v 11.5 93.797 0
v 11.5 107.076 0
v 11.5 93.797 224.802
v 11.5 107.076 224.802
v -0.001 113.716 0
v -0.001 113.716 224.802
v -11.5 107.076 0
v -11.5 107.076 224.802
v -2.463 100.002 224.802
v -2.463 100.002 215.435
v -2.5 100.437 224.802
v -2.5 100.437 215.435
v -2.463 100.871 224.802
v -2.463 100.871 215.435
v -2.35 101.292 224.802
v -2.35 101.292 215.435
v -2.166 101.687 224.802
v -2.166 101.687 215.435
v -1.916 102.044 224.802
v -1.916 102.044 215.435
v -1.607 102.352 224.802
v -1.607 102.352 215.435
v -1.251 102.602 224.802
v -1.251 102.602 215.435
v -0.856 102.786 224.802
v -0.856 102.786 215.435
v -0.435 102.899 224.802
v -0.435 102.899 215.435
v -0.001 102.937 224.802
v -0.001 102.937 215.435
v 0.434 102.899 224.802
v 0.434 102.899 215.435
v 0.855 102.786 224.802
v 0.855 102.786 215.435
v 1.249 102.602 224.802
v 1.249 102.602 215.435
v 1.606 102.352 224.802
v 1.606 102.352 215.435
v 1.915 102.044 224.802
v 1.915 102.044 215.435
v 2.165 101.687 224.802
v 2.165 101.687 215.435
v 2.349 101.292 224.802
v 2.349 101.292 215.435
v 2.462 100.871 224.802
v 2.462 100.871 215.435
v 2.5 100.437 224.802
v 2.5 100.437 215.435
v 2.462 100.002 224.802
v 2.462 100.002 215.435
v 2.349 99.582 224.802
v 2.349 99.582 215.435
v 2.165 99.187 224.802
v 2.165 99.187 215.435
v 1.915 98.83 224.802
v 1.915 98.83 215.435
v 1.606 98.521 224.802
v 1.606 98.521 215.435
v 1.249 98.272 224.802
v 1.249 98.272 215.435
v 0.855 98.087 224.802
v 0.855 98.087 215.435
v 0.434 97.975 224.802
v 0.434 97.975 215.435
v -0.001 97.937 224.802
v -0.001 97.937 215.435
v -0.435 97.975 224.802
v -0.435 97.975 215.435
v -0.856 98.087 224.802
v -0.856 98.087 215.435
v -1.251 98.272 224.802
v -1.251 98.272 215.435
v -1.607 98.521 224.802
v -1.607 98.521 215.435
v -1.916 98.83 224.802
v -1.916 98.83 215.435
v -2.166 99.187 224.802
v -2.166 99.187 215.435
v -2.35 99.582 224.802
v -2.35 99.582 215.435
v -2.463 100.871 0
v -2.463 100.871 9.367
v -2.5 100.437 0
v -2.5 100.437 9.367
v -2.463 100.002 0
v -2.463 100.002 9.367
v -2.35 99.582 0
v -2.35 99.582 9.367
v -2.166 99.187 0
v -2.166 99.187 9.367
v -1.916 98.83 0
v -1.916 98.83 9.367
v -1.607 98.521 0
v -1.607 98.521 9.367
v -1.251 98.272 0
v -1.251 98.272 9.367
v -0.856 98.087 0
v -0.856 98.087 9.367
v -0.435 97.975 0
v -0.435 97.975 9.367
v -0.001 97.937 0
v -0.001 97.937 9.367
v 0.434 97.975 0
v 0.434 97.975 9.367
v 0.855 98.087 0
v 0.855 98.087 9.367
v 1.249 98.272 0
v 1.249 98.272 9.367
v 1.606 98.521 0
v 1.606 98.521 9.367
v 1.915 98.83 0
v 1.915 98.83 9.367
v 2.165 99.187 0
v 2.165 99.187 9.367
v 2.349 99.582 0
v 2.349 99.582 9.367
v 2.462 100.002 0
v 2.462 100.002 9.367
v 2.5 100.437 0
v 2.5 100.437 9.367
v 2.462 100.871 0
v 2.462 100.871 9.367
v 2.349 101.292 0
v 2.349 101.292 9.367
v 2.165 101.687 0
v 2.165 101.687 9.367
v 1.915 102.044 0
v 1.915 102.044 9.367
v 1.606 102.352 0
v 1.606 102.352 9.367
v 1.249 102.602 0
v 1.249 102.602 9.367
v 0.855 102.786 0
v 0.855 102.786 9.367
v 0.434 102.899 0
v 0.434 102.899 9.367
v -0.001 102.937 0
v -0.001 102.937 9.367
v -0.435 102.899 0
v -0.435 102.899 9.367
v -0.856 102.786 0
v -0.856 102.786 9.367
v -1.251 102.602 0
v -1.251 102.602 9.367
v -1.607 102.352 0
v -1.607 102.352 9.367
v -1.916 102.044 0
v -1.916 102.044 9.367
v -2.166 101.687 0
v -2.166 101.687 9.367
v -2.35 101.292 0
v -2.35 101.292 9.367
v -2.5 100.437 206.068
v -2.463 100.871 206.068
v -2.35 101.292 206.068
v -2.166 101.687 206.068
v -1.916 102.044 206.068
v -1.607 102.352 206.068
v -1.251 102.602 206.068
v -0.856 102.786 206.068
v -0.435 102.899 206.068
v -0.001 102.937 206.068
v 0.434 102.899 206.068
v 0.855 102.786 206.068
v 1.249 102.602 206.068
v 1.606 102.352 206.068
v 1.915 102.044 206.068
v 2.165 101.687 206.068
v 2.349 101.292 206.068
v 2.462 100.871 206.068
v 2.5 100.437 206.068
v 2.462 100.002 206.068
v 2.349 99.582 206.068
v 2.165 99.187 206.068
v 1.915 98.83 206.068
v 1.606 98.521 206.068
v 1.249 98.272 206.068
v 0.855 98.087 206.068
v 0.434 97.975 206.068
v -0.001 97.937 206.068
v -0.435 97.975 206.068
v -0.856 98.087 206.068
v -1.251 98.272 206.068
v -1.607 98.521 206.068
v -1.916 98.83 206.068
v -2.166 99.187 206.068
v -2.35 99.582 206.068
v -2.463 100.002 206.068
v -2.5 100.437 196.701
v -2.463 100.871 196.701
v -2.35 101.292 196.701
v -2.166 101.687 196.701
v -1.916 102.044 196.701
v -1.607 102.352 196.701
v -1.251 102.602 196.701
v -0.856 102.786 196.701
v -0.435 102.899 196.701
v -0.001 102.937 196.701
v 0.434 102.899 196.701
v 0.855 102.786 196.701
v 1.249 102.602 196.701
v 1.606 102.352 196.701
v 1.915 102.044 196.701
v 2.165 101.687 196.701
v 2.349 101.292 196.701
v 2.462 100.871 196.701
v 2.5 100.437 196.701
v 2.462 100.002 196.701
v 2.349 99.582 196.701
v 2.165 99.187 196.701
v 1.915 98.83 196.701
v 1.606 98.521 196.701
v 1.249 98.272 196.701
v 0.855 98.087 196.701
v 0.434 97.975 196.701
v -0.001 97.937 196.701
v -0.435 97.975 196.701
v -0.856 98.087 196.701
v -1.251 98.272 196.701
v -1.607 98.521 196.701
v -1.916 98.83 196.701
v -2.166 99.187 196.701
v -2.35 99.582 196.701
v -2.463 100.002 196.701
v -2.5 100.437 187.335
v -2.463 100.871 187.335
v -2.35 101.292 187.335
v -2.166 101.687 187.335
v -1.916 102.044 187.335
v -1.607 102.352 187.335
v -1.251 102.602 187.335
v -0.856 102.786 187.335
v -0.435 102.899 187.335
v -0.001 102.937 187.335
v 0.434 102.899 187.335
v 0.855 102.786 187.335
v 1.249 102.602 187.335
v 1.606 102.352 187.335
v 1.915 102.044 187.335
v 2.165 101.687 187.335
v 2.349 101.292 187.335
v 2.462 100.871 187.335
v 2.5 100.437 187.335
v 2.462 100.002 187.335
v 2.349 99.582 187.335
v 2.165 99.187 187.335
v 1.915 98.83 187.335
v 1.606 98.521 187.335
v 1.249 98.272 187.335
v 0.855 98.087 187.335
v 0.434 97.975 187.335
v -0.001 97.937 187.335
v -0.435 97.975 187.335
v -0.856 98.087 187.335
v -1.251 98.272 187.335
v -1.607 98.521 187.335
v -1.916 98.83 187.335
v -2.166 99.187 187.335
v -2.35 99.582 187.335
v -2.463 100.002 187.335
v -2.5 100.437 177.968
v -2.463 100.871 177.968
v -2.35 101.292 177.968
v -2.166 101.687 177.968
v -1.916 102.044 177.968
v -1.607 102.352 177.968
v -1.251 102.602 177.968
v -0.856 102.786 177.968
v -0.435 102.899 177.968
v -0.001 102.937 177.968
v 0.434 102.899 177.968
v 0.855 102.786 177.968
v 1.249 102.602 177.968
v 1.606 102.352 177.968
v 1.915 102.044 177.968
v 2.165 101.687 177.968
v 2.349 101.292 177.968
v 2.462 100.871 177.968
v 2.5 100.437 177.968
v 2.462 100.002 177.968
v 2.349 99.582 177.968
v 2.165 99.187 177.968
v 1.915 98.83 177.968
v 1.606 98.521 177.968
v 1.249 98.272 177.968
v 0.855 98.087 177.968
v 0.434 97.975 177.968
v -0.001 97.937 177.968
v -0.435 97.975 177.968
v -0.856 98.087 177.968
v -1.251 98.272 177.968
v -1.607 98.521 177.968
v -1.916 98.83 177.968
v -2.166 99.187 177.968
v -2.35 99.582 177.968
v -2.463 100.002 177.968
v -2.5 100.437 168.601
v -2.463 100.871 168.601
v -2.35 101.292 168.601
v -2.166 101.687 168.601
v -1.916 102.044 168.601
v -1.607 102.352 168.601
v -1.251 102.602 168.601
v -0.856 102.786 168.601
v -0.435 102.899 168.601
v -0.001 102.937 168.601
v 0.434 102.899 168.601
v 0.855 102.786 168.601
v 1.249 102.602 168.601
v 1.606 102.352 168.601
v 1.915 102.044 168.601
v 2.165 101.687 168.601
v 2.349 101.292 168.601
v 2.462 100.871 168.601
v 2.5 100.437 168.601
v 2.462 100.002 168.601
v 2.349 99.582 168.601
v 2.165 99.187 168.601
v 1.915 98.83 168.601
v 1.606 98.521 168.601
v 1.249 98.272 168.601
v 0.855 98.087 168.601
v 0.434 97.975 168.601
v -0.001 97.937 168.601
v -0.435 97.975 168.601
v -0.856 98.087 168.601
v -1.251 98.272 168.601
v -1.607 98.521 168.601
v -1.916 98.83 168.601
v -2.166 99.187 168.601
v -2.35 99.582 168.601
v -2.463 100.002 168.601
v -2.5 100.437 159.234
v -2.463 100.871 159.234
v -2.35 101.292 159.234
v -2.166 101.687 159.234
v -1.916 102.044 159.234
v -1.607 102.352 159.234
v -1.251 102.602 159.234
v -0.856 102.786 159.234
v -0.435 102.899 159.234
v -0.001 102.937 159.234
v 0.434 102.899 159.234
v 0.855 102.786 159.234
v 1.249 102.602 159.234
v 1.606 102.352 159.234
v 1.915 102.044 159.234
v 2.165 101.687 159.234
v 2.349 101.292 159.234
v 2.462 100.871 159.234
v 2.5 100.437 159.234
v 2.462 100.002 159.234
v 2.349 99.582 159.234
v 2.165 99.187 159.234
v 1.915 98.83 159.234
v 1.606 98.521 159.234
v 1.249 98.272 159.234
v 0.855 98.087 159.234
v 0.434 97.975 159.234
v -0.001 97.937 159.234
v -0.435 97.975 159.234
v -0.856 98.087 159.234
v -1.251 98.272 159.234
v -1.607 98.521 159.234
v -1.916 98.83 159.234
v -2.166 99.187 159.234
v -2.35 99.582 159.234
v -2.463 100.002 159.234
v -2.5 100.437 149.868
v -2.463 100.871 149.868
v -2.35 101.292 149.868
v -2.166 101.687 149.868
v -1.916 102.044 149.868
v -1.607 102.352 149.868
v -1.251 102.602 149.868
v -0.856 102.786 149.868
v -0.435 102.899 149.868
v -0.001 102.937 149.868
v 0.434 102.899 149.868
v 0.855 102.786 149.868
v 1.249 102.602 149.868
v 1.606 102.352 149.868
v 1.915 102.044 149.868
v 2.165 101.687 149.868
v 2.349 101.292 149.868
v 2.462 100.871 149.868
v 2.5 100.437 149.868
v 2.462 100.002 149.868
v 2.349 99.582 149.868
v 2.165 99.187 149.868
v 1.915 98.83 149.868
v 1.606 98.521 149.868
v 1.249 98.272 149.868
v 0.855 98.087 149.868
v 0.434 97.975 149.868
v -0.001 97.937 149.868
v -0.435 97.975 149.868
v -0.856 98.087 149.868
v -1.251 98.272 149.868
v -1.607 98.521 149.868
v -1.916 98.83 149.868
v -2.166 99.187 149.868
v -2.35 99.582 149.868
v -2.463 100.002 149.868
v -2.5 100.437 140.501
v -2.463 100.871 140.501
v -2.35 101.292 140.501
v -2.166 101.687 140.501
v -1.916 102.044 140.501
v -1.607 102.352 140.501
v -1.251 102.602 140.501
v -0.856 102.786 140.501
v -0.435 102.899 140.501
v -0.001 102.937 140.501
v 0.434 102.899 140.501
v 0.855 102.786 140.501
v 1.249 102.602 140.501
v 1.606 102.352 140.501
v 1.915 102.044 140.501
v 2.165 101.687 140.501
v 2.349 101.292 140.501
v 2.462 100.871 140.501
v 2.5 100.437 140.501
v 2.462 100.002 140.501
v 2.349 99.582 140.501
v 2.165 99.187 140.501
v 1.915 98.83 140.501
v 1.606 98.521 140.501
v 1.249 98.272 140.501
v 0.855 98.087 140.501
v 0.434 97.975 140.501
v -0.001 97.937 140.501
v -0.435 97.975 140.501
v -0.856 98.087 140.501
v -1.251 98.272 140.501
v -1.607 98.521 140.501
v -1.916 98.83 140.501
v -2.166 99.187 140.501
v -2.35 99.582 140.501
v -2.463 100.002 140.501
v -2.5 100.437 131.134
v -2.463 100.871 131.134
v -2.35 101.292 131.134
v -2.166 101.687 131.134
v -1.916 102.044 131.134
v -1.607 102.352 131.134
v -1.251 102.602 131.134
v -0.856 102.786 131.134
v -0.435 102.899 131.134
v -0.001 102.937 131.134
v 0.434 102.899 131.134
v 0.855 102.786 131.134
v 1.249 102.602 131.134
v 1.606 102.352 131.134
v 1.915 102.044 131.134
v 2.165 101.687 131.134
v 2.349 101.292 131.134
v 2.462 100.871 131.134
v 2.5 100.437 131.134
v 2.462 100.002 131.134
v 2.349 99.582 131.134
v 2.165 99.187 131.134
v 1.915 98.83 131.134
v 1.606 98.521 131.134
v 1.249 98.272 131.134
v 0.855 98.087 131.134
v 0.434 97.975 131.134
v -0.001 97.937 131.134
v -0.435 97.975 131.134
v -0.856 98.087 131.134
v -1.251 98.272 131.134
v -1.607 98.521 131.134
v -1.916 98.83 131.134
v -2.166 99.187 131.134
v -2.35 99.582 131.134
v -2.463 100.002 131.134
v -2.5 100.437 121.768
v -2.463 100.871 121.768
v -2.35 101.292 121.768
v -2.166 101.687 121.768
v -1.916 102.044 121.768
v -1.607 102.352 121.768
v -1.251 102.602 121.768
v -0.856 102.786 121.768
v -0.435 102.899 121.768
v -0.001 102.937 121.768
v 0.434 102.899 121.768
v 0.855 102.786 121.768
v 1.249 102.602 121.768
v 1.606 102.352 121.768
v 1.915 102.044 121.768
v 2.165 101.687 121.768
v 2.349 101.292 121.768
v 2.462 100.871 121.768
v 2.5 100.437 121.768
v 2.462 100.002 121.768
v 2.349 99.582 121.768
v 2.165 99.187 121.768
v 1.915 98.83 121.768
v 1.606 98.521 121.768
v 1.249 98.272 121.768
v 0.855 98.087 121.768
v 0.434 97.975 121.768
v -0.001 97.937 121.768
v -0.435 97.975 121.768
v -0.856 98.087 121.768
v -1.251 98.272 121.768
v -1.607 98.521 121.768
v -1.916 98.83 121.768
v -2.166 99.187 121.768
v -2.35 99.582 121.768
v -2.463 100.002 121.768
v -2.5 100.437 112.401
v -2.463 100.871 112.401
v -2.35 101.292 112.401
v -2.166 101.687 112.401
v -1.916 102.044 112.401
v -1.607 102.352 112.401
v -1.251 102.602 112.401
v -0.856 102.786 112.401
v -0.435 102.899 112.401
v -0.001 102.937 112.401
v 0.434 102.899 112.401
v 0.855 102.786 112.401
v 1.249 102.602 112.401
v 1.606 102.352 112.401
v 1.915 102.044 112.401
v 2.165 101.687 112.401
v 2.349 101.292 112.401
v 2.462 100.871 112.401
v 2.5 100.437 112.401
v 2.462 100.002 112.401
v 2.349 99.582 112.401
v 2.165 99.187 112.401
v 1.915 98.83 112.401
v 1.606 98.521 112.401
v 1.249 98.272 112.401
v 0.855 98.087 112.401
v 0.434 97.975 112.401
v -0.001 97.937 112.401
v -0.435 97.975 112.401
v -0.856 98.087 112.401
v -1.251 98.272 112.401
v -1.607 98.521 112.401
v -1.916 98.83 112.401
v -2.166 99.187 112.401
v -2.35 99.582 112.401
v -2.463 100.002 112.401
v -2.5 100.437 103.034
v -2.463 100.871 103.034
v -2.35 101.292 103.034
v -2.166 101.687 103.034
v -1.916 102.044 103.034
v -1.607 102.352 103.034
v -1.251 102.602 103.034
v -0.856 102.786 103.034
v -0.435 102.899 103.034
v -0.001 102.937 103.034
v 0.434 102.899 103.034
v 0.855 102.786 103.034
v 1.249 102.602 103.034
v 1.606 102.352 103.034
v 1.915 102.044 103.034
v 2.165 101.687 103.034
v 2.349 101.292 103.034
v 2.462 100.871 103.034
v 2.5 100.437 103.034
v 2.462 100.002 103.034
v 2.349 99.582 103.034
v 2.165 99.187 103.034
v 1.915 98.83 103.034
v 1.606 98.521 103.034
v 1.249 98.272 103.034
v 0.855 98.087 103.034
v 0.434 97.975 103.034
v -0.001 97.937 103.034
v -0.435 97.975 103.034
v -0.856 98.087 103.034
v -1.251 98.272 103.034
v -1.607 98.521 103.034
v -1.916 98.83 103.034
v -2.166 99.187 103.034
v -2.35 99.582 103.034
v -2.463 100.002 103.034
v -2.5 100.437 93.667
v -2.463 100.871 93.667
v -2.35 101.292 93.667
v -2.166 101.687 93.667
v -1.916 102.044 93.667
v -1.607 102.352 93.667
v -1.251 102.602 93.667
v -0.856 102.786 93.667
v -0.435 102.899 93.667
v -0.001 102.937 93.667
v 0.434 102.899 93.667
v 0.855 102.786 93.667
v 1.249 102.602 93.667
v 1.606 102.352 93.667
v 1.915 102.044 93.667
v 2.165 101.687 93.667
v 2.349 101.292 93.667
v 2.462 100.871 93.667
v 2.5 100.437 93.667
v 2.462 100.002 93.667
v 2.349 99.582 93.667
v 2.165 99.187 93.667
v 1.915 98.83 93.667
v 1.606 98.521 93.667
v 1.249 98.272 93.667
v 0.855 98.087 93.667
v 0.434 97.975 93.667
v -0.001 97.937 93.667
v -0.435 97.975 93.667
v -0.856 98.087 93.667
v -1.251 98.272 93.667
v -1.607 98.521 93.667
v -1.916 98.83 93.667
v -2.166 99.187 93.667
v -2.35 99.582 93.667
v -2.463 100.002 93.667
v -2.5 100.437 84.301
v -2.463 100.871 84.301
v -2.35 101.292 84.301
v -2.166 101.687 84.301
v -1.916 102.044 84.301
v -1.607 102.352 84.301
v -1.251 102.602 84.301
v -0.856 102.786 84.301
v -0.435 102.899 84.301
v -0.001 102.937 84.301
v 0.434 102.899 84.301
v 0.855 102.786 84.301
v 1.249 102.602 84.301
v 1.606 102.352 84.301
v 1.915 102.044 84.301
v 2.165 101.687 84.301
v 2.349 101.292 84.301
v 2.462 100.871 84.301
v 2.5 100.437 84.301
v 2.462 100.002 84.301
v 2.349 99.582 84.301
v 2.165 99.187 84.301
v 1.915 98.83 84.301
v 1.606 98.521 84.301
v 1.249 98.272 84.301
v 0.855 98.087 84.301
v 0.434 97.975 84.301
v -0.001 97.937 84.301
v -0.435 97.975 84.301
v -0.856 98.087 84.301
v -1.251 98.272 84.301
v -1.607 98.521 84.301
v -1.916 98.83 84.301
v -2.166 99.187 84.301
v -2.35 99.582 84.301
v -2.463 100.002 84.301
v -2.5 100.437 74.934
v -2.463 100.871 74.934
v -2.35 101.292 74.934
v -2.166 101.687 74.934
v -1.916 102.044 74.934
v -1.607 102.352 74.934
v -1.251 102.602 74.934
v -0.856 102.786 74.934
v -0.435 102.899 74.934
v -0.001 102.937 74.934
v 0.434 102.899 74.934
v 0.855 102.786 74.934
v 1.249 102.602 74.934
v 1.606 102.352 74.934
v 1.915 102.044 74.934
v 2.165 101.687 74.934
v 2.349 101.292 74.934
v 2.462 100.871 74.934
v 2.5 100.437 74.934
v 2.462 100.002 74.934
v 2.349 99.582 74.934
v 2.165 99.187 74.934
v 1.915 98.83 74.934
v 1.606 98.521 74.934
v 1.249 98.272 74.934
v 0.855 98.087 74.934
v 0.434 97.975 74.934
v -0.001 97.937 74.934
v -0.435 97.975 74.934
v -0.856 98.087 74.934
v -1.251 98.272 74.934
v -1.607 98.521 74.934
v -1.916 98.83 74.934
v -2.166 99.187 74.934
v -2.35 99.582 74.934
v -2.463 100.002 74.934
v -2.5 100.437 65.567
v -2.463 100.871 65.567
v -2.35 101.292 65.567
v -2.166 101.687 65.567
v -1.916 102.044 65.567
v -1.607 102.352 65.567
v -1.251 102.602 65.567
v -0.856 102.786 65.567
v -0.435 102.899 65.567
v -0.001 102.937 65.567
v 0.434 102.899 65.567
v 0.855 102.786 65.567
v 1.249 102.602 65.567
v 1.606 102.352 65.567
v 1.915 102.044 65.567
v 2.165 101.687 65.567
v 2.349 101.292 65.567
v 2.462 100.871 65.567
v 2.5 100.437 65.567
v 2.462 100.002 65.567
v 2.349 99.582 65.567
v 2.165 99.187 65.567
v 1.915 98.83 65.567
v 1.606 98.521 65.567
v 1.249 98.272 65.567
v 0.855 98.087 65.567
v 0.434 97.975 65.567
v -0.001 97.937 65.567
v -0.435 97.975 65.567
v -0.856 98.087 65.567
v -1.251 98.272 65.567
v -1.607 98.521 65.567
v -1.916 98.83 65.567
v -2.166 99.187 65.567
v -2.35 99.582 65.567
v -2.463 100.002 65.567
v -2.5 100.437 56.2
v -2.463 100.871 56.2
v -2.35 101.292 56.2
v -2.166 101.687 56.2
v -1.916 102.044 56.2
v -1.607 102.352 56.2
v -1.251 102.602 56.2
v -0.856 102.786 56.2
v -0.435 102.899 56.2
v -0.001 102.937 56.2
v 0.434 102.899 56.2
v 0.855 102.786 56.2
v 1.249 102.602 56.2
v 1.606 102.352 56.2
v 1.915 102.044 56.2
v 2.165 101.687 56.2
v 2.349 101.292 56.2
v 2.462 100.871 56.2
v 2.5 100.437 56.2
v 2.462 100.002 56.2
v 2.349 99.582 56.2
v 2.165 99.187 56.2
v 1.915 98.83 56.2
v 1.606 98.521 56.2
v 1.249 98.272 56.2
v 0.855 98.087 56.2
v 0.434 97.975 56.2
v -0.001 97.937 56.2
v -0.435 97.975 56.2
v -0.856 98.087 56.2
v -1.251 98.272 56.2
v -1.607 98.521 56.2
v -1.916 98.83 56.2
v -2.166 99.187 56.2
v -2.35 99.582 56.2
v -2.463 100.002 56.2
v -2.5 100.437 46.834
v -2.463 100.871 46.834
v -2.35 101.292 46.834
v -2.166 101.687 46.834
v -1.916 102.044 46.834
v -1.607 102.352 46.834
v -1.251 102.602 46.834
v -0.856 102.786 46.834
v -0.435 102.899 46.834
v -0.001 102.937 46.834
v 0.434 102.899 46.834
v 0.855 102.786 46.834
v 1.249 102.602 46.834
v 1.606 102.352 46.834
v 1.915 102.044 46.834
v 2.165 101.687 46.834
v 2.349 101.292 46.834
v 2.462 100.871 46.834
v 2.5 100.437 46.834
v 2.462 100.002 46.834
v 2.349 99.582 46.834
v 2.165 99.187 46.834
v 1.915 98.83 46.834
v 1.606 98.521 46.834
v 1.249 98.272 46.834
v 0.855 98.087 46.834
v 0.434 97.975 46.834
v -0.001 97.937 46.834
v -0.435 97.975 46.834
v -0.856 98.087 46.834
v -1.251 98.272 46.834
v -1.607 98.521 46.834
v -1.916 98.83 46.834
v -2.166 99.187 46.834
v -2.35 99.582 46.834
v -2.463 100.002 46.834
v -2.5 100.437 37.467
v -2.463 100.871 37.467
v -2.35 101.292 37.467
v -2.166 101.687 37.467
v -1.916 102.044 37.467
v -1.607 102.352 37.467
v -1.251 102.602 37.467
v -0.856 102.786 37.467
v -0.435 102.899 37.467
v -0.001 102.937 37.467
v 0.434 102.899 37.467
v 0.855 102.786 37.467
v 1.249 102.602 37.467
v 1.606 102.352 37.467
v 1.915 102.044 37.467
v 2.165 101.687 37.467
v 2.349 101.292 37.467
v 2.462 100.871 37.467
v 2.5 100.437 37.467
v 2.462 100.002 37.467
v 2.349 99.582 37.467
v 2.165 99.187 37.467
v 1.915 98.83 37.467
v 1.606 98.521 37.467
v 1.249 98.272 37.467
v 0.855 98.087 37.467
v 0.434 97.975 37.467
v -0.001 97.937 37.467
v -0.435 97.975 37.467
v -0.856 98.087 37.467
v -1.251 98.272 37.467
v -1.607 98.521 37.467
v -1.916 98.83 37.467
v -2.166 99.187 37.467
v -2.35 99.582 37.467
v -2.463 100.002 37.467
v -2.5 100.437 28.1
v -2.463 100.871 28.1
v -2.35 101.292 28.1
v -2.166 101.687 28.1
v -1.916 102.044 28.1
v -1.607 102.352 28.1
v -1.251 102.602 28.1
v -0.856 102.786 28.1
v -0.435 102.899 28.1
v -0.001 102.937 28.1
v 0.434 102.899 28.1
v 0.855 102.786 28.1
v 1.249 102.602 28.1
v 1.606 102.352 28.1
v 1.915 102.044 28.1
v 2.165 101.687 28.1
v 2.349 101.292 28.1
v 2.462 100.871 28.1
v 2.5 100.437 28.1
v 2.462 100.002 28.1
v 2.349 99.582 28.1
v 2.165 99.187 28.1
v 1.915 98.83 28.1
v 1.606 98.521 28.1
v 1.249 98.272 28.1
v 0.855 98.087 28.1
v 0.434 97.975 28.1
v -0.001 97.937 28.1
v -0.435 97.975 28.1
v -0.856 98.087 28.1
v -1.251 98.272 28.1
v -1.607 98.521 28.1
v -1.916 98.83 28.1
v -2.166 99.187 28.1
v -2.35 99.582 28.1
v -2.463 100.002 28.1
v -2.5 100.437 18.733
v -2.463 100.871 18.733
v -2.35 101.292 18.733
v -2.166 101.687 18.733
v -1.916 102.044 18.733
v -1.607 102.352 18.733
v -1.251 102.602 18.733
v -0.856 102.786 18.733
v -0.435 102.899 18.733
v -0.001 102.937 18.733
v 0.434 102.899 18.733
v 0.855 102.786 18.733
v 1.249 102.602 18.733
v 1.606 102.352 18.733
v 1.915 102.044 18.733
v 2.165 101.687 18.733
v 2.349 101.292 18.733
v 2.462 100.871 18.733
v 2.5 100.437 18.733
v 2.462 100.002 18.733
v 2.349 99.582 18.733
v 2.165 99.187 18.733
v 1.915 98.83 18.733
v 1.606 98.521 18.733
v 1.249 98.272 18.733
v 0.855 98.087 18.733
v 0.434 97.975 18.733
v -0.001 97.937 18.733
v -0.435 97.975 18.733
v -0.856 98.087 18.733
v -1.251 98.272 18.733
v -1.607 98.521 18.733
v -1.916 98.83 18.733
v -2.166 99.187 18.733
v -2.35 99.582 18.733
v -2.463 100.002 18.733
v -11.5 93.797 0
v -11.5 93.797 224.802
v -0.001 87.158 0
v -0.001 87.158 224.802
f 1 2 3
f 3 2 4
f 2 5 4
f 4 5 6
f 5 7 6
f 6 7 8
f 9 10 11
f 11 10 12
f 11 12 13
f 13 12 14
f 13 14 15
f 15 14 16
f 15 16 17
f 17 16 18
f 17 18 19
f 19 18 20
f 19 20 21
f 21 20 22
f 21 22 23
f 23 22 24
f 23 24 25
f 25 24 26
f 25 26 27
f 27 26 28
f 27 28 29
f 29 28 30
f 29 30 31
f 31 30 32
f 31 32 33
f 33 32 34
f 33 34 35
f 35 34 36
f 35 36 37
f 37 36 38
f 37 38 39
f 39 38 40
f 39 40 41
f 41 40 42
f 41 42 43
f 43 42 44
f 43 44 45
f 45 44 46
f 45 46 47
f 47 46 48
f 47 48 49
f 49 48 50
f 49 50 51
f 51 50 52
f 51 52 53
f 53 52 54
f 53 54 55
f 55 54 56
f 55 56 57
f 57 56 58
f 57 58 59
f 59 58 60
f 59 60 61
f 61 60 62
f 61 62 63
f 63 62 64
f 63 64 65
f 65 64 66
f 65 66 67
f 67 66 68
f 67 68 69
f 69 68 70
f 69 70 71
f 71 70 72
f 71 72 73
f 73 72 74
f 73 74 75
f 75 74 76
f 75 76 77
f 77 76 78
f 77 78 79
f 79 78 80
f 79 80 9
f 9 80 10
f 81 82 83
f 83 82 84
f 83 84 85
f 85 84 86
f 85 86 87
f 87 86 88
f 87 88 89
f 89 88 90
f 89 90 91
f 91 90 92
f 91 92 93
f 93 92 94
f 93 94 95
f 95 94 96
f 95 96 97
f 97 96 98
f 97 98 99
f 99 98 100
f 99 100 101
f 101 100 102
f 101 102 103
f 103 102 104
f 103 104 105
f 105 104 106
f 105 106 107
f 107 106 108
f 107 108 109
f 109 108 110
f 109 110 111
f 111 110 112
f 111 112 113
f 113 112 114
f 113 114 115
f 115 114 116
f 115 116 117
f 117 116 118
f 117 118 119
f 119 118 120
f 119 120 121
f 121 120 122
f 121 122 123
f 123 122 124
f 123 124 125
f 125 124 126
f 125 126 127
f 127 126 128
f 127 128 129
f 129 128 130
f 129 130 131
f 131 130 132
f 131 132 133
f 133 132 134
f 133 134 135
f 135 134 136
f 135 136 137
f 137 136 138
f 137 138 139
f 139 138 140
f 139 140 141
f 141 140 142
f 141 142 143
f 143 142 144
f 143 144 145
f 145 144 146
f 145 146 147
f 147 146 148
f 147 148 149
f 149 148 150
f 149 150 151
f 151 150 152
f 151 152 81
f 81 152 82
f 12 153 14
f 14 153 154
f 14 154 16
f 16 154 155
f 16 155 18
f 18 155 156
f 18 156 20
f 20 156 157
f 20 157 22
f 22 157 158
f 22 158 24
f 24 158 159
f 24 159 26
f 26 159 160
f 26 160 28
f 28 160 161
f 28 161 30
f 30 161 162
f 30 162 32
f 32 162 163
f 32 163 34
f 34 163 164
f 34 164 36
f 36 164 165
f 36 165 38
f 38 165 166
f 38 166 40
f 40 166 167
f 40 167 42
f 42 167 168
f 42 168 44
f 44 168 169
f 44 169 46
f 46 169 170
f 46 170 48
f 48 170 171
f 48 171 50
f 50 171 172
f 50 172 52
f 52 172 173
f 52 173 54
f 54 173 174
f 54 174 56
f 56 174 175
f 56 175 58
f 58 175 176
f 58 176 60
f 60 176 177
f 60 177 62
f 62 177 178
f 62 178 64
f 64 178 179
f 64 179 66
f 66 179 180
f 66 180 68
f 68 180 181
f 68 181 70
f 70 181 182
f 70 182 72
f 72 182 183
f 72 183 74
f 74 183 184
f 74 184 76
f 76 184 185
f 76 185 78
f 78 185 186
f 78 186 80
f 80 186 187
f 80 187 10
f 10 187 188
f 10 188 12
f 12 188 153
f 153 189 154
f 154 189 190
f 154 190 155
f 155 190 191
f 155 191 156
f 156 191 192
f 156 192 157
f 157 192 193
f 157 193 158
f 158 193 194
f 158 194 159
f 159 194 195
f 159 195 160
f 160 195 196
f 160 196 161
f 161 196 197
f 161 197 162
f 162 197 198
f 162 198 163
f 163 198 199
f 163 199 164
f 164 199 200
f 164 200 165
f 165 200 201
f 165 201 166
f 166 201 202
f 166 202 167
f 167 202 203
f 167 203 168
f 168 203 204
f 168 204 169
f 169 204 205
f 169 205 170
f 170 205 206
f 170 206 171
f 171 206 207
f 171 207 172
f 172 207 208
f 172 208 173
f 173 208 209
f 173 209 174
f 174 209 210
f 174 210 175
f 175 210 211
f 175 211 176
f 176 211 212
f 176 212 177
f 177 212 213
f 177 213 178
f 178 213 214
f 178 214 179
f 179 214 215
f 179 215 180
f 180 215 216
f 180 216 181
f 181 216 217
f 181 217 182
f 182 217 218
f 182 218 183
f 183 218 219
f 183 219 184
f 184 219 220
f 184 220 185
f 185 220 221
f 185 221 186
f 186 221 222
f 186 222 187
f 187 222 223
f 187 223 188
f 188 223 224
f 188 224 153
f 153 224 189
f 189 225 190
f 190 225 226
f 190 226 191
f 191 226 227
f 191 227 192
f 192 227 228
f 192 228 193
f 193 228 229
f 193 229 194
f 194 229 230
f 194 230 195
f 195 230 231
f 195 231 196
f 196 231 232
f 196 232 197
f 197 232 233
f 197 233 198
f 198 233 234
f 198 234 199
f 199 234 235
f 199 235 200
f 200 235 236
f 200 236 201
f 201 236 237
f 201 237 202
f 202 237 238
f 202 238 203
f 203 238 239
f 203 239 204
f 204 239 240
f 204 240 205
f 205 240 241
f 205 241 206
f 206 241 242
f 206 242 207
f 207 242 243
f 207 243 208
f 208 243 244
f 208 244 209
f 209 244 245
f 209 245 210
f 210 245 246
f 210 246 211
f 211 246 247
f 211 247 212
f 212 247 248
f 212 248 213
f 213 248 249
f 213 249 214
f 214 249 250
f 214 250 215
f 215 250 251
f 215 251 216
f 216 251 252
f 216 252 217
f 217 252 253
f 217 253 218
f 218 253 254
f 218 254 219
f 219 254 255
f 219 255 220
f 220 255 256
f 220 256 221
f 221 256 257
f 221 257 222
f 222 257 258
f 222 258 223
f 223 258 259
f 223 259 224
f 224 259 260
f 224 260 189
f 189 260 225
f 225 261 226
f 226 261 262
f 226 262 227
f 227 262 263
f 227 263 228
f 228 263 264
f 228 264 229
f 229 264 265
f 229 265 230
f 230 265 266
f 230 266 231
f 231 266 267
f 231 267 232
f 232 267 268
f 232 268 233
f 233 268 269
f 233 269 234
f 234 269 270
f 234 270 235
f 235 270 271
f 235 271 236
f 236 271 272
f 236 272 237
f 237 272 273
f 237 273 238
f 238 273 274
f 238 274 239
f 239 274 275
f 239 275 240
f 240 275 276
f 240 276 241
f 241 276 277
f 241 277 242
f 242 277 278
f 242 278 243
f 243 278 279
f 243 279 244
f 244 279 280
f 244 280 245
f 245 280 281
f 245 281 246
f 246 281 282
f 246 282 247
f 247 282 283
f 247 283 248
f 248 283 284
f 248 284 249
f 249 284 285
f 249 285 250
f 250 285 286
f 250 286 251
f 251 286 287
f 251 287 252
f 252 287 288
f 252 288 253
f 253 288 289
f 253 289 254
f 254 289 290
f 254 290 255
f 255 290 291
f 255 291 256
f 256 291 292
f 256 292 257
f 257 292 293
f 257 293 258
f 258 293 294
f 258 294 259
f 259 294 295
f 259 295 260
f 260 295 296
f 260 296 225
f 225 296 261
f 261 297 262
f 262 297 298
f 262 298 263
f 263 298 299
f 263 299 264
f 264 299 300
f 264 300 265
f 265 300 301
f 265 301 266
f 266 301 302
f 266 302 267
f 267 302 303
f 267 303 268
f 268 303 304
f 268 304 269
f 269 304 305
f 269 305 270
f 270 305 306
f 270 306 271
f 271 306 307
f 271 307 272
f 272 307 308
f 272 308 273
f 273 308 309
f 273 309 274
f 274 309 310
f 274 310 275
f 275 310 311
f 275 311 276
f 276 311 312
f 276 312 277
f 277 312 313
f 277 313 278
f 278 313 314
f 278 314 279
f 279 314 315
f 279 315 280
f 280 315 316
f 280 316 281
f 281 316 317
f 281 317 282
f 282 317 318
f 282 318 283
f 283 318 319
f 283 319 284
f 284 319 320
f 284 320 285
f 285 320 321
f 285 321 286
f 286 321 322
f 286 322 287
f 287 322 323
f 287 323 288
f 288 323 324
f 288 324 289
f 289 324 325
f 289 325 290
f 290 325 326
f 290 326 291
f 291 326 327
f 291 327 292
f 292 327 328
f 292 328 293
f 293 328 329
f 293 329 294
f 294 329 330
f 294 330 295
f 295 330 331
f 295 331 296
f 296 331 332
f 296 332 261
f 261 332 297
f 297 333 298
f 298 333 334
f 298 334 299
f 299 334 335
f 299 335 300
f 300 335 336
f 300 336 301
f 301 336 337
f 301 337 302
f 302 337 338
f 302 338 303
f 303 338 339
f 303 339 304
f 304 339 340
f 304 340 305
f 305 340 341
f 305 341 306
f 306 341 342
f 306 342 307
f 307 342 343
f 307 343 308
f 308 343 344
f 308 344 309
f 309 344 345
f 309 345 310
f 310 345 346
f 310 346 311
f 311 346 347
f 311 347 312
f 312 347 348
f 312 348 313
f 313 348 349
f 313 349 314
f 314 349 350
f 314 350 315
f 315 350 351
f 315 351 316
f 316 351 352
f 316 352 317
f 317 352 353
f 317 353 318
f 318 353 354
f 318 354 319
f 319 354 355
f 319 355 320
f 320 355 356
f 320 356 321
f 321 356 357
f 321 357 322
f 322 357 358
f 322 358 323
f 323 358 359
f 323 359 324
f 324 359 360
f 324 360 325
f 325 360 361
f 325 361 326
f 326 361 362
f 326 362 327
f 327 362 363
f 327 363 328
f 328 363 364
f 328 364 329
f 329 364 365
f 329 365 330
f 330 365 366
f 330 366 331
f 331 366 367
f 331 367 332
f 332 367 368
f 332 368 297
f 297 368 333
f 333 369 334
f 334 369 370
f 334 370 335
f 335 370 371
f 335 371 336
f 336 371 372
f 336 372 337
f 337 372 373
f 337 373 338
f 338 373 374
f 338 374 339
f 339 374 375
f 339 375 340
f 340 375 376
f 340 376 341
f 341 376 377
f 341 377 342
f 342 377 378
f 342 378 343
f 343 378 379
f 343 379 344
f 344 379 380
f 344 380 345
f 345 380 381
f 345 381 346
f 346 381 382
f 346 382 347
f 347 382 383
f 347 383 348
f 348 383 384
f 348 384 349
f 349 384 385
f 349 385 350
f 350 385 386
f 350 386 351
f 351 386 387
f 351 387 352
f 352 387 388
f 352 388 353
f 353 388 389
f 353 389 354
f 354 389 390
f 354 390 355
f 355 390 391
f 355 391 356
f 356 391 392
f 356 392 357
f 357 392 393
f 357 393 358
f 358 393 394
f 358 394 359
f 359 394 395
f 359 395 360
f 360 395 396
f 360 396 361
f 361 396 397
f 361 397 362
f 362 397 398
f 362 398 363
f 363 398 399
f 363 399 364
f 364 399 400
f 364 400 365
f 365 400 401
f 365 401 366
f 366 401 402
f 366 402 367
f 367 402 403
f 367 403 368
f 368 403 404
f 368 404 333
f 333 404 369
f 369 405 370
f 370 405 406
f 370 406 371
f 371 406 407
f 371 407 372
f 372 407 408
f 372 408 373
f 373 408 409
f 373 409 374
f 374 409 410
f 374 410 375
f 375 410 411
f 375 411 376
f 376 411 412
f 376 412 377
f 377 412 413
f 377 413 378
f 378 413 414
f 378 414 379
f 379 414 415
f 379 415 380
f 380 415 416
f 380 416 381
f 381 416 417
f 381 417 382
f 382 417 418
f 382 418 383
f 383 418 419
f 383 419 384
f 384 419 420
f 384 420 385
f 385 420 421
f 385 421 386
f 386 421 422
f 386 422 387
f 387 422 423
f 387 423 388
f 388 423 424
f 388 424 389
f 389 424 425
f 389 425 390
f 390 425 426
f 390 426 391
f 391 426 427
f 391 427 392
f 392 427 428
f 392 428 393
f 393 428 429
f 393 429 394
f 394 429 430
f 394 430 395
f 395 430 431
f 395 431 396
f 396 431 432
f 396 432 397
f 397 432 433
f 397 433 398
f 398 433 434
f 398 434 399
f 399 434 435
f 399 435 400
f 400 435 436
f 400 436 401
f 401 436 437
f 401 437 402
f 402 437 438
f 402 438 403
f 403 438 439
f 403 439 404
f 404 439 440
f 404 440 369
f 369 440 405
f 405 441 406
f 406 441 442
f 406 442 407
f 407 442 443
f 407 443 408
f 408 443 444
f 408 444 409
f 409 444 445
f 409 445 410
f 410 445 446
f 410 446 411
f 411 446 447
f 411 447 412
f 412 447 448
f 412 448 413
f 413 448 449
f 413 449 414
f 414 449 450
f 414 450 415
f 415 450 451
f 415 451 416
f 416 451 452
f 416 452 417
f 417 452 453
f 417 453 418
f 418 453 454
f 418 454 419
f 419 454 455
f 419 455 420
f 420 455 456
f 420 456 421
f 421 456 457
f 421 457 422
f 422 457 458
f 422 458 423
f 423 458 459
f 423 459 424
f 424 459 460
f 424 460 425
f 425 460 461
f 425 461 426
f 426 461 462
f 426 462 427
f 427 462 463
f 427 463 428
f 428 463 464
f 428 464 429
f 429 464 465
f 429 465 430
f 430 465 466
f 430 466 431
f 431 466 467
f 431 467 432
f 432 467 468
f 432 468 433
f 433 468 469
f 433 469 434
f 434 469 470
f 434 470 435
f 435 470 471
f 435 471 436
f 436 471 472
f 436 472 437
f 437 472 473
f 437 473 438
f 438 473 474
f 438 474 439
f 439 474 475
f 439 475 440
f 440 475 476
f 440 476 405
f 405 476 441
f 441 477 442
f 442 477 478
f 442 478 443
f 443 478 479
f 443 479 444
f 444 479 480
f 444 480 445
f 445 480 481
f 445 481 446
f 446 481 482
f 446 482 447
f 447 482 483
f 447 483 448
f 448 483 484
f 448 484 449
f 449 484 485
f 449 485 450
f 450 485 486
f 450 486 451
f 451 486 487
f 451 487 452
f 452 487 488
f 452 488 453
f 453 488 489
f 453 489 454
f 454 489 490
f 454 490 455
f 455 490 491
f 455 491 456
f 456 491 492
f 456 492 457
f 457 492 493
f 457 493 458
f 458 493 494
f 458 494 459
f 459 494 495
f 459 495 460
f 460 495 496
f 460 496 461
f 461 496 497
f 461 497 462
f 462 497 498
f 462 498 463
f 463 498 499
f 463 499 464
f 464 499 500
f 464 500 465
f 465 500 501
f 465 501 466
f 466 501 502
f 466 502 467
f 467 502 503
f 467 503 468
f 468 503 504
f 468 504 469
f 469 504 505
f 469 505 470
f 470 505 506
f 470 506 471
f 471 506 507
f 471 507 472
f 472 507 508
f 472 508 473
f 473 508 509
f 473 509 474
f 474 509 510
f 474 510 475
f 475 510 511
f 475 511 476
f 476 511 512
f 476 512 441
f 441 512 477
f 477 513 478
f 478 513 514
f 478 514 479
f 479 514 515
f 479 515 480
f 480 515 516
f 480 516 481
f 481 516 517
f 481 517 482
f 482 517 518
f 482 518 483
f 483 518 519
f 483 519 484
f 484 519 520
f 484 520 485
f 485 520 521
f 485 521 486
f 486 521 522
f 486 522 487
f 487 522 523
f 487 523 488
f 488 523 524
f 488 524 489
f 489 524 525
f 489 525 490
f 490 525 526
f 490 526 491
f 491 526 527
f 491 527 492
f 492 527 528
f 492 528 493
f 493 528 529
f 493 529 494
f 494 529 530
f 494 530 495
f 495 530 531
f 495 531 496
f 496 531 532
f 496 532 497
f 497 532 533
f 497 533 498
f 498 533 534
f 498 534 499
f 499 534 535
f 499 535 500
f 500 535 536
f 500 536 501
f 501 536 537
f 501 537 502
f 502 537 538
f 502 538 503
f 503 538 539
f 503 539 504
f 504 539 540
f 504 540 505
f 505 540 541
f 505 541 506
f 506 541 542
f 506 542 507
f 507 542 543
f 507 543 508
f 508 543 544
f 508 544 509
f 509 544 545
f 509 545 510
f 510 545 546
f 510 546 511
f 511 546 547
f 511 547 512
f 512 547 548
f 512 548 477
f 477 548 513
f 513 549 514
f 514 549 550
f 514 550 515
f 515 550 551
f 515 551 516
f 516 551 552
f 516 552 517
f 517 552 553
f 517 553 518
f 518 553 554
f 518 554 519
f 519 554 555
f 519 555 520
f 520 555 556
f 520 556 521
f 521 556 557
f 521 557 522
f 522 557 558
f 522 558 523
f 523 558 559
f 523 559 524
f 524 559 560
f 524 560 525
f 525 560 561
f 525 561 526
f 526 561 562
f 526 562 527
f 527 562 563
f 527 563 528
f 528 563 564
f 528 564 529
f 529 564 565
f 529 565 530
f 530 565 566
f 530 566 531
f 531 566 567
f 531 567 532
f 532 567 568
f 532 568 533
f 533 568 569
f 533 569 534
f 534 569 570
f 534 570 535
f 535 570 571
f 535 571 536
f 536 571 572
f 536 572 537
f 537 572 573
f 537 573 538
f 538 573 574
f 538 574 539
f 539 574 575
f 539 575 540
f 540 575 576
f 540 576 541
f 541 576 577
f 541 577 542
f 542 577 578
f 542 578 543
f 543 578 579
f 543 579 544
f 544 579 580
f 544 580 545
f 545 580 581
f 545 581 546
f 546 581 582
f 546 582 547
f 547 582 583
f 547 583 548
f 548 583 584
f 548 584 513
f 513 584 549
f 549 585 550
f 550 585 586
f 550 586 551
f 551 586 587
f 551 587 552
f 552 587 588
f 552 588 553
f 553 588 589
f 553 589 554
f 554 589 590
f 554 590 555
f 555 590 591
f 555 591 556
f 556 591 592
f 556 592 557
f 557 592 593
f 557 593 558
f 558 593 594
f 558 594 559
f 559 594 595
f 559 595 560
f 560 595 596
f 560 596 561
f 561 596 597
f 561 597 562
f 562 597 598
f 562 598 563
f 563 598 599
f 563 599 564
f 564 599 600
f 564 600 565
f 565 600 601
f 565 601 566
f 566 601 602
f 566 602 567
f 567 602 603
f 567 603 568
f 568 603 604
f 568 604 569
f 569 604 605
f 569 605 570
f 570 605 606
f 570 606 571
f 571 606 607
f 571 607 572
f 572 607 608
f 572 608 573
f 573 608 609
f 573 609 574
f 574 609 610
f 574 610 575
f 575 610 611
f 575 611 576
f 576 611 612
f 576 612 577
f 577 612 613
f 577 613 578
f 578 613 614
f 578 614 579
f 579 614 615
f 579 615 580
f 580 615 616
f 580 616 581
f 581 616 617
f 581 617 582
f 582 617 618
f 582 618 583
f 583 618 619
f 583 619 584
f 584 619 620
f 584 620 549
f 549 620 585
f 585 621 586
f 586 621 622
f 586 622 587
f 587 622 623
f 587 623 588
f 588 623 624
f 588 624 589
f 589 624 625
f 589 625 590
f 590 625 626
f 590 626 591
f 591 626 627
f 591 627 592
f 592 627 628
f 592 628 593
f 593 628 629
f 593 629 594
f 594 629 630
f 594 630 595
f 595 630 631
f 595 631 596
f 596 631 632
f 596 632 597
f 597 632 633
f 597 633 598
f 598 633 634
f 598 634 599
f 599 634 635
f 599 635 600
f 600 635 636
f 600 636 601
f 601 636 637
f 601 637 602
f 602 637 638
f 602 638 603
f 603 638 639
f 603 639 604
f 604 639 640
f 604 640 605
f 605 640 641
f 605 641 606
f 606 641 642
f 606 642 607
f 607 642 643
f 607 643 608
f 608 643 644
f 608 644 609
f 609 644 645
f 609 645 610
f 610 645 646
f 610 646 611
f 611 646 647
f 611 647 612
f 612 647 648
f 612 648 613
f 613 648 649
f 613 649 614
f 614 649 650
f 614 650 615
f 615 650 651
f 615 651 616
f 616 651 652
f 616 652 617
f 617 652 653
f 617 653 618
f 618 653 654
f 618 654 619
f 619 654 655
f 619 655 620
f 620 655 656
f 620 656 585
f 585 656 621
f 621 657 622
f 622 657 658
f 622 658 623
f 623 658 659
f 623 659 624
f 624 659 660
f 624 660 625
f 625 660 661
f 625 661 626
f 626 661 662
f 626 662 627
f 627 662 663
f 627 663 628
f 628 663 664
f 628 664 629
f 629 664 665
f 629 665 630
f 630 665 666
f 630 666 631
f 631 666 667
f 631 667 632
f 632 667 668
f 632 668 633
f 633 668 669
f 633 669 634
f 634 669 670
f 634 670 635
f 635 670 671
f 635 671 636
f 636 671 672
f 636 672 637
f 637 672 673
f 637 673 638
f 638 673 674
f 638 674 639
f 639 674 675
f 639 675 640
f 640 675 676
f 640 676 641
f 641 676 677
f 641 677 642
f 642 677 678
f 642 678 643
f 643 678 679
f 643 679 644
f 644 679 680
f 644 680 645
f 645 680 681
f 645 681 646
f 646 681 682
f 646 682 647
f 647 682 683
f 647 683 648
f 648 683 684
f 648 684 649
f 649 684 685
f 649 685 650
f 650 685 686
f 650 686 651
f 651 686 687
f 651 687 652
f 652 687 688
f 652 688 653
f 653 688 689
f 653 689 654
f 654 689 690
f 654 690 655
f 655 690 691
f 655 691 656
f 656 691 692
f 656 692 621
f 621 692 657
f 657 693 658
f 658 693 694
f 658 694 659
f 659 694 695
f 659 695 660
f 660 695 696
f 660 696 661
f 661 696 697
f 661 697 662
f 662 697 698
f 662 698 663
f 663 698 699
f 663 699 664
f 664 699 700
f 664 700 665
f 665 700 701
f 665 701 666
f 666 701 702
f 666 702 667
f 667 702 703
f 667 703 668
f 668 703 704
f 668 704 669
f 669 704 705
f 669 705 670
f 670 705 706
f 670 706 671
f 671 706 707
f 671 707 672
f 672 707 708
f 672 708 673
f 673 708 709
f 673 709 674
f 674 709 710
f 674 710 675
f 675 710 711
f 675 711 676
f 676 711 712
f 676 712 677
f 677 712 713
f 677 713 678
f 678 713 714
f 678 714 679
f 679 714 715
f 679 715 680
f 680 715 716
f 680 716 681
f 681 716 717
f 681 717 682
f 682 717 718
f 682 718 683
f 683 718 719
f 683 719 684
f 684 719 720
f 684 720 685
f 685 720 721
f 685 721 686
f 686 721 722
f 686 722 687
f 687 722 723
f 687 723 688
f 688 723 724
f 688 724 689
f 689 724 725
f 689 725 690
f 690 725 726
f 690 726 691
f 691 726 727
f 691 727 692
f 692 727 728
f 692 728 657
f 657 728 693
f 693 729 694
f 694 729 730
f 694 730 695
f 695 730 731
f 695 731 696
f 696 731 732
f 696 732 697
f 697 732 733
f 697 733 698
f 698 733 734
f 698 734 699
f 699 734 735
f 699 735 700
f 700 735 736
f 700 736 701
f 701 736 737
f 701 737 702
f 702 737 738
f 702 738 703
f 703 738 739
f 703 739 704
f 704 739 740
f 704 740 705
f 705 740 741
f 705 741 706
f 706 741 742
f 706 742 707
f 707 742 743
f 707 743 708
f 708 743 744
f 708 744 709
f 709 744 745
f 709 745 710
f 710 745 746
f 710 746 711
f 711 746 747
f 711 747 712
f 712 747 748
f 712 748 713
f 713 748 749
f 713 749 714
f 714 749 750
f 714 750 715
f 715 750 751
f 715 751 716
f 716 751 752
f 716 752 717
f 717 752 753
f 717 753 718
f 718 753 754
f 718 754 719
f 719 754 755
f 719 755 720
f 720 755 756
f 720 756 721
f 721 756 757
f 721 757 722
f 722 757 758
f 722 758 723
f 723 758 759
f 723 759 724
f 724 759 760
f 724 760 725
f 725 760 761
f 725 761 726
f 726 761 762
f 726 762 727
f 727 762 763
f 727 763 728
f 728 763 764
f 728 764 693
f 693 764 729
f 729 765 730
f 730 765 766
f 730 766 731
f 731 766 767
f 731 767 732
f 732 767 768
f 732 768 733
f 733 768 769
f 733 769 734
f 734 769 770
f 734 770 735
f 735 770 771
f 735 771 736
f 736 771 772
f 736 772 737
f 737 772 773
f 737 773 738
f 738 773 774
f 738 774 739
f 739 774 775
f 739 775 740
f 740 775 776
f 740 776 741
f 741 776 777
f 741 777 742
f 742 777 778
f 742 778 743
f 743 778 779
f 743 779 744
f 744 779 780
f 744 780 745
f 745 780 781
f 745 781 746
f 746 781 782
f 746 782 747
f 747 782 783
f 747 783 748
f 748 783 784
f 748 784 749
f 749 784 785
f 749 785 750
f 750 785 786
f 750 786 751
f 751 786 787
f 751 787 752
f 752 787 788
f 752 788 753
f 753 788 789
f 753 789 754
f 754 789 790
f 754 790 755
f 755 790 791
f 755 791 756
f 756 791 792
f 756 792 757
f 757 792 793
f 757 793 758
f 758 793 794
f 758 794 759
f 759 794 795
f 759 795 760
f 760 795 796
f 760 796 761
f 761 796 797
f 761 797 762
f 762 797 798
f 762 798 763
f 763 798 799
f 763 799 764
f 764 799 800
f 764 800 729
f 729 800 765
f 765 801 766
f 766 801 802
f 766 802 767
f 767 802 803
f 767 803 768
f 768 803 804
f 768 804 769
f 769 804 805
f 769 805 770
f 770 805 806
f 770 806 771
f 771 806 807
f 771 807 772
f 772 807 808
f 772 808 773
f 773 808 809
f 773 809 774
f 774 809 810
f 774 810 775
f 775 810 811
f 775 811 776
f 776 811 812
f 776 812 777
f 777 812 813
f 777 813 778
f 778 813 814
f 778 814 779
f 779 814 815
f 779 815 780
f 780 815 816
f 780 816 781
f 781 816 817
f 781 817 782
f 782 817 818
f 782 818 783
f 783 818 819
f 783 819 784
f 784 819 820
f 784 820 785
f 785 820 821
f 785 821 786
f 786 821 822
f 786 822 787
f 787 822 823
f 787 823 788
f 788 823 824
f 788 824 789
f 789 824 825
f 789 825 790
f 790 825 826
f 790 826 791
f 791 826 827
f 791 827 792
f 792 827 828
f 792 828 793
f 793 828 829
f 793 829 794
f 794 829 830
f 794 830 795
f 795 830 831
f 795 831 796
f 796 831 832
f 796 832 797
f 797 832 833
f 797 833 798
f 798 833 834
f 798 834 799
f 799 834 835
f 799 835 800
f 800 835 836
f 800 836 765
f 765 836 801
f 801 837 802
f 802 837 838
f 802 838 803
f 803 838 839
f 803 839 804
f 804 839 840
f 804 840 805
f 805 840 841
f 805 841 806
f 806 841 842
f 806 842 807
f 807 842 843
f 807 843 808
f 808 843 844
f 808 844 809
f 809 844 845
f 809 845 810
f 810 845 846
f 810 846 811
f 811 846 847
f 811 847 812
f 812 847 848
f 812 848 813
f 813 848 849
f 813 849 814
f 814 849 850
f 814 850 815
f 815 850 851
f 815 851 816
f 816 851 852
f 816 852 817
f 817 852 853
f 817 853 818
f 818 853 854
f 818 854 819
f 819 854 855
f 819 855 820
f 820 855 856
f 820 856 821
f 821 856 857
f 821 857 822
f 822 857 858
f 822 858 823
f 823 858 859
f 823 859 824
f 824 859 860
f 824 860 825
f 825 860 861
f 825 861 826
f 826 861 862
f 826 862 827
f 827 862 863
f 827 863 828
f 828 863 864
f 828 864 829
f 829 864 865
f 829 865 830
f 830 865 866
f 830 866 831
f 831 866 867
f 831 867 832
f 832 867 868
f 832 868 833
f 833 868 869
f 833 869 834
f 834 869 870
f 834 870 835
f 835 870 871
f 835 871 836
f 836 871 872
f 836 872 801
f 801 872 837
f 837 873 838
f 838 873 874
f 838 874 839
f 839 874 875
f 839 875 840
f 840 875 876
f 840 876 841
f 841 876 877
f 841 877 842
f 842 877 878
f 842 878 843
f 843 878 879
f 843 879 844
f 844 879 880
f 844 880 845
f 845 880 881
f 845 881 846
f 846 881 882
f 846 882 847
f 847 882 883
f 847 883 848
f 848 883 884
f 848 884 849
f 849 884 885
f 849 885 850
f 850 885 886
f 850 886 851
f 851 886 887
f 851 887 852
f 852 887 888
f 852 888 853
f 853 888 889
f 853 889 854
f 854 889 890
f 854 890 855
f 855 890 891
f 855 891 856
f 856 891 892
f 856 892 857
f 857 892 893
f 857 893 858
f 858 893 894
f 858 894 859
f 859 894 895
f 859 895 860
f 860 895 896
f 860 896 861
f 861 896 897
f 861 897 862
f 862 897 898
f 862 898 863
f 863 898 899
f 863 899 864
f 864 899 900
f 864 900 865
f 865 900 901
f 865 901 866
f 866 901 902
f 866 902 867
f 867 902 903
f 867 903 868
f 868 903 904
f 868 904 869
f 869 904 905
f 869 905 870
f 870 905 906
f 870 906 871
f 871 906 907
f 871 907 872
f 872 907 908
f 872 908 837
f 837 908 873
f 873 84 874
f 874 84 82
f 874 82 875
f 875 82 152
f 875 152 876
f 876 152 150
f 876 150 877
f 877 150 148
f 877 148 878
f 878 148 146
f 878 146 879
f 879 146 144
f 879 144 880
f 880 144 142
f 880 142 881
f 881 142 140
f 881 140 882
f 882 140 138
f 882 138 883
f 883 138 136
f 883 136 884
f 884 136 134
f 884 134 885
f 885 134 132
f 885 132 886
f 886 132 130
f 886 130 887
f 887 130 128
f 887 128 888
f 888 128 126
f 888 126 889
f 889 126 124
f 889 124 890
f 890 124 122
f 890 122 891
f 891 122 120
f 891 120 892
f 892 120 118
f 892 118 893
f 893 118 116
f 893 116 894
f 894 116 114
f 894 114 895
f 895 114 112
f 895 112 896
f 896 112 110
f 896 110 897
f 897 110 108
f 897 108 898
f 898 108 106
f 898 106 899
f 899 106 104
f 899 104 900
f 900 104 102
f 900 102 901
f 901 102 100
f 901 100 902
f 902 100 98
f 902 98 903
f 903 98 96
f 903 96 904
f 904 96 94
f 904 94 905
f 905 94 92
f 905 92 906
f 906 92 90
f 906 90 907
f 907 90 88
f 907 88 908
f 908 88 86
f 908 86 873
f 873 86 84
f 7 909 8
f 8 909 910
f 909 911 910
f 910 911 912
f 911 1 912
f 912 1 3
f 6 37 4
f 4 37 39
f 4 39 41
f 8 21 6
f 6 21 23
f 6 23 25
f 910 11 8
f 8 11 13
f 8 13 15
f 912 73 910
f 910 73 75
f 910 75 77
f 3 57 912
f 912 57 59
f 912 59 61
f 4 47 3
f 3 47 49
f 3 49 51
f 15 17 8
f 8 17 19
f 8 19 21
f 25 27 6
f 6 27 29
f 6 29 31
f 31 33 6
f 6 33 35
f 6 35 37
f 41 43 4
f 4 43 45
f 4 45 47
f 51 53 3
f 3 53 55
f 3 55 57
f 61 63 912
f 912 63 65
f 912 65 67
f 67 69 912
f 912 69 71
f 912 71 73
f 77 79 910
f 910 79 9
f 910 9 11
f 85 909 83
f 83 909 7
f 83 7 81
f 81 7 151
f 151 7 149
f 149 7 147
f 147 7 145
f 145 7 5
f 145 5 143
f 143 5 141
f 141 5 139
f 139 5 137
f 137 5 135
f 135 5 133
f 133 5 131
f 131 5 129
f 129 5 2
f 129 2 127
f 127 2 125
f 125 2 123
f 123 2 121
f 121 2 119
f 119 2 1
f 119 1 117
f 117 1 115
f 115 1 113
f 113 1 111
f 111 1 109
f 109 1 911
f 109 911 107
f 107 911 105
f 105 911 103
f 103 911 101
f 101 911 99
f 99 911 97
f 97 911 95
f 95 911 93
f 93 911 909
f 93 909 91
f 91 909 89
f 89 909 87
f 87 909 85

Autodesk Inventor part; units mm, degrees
ref_plane "YZ Plane" through (0, 0, 0) normal (1, 0, 0) x (0, 1, 0)
ref_plane "XZ Plane" through (0, 0, 0) normal (0, 1, 0) x (-1, 0, 0)
sketch "Sketch1" plane through (0, 0, 0) normal (0, 0, 1) x (1, 0, 0)
  circle A0 centre (-0.0005, 100.4366) radius 2.5 projected
  arc A1 (7.4995, 100.4366) -> (-7.5005, 100.4366) centre (-0.0005, 100.4366) ccw projected
  circle A2 centre (-0.0005, 100.4366) radius 7.5
  arc A3 (11.4995, 100.4366) -> (-11.5005, 100.4365) centre (-0.0005, 100.4366) ccw projected
  circle A4 centre (-0.0005, 100.4366) radius 11.5
  line L0 (-0.0005, 100.4366) -> (11.4995, 107.0761)
  line L1 (-0.0005, 100.4366) -> (16.6776, 100.4366) construction
  line L2 (-0.0005, 111.9366) -> (9.9588, 106.1866)
  line L3 (5.7495, 110.3959) -> (4.9792, 109.0616)
  line L4 (-0.0005, 113.7156) -> (11.4995, 107.0761)
  line L5 (-4.6563, 116.4037) -> (19.5852, 116.4037) construction
  line L6 (-0.0005, 100.4366) -> (-0.0005, 113.7156)
  line L7 (-11.5005, 107.0761) -> (-0.0005, 113.7156)
  line L8 (-11.5005, 93.7971) -> (-11.5005, 107.0761)
  line L9 (-0.0005, 87.1575) -> (-11.5005, 93.7971)
  line L10 (11.4995, 93.7971) -> (-0.0005, 87.1575)
  line L11 (11.4995, 107.0761) -> (11.4995, 93.7971)
  point P0 (0, 0)
  point P1 (11.4995, 100.4366)
  point P2 (11.4995, 100.4366)
  dimension "d0" = 30
  dimension "d1" = 30
  dimension "d4" = 360
ref_plane "Work Plane1" through (-7.5007, -7.5, 224.8016) normal (0, 0, -1) x (0, 1, 0)
extrude "Extrusion1" add sketch "Sketch1" along normal up to surface (224.8016 mm away) contours A0 L0 A1 A2 L6 | A0 L6 A1 L0 | L0 A3 A4 L6 A1 A2 | A1 L6 L2 L0 | L0 L11 A3 | L2 L3 A3 | A3 L4 L0 | L6 L4 A3 | A3 L3 L2 | A3 L7 L6 | L11 L10 A4 | A3 L8 L7 | L10 L9 A4 | A4 L9 L8
properties part number "TheHandleBar_3DPrint"
